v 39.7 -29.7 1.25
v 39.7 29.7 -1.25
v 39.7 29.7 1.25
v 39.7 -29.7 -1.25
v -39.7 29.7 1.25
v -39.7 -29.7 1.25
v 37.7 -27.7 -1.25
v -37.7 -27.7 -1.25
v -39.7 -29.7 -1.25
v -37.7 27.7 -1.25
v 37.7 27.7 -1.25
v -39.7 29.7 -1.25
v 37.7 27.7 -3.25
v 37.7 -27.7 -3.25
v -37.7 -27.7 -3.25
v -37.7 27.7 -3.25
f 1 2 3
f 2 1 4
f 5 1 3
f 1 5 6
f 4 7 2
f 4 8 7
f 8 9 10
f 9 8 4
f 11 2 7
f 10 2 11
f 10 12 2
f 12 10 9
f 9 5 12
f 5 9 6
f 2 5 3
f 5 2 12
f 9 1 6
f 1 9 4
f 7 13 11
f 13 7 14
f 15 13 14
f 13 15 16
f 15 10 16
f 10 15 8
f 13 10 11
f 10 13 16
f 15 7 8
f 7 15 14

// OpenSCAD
// ========================================
// electronics enclosure — lid
// NeuroCAD canonical IR; dimensions are millimetres
// ========================================
$fn = 64;

union() {
  cube(size=[79.4, 59.4, 2.5], center=true);
  translate([0, 0, -2.25]) {
    cube(size=[75.4, 55.4, 2], center=true);
  }
}
